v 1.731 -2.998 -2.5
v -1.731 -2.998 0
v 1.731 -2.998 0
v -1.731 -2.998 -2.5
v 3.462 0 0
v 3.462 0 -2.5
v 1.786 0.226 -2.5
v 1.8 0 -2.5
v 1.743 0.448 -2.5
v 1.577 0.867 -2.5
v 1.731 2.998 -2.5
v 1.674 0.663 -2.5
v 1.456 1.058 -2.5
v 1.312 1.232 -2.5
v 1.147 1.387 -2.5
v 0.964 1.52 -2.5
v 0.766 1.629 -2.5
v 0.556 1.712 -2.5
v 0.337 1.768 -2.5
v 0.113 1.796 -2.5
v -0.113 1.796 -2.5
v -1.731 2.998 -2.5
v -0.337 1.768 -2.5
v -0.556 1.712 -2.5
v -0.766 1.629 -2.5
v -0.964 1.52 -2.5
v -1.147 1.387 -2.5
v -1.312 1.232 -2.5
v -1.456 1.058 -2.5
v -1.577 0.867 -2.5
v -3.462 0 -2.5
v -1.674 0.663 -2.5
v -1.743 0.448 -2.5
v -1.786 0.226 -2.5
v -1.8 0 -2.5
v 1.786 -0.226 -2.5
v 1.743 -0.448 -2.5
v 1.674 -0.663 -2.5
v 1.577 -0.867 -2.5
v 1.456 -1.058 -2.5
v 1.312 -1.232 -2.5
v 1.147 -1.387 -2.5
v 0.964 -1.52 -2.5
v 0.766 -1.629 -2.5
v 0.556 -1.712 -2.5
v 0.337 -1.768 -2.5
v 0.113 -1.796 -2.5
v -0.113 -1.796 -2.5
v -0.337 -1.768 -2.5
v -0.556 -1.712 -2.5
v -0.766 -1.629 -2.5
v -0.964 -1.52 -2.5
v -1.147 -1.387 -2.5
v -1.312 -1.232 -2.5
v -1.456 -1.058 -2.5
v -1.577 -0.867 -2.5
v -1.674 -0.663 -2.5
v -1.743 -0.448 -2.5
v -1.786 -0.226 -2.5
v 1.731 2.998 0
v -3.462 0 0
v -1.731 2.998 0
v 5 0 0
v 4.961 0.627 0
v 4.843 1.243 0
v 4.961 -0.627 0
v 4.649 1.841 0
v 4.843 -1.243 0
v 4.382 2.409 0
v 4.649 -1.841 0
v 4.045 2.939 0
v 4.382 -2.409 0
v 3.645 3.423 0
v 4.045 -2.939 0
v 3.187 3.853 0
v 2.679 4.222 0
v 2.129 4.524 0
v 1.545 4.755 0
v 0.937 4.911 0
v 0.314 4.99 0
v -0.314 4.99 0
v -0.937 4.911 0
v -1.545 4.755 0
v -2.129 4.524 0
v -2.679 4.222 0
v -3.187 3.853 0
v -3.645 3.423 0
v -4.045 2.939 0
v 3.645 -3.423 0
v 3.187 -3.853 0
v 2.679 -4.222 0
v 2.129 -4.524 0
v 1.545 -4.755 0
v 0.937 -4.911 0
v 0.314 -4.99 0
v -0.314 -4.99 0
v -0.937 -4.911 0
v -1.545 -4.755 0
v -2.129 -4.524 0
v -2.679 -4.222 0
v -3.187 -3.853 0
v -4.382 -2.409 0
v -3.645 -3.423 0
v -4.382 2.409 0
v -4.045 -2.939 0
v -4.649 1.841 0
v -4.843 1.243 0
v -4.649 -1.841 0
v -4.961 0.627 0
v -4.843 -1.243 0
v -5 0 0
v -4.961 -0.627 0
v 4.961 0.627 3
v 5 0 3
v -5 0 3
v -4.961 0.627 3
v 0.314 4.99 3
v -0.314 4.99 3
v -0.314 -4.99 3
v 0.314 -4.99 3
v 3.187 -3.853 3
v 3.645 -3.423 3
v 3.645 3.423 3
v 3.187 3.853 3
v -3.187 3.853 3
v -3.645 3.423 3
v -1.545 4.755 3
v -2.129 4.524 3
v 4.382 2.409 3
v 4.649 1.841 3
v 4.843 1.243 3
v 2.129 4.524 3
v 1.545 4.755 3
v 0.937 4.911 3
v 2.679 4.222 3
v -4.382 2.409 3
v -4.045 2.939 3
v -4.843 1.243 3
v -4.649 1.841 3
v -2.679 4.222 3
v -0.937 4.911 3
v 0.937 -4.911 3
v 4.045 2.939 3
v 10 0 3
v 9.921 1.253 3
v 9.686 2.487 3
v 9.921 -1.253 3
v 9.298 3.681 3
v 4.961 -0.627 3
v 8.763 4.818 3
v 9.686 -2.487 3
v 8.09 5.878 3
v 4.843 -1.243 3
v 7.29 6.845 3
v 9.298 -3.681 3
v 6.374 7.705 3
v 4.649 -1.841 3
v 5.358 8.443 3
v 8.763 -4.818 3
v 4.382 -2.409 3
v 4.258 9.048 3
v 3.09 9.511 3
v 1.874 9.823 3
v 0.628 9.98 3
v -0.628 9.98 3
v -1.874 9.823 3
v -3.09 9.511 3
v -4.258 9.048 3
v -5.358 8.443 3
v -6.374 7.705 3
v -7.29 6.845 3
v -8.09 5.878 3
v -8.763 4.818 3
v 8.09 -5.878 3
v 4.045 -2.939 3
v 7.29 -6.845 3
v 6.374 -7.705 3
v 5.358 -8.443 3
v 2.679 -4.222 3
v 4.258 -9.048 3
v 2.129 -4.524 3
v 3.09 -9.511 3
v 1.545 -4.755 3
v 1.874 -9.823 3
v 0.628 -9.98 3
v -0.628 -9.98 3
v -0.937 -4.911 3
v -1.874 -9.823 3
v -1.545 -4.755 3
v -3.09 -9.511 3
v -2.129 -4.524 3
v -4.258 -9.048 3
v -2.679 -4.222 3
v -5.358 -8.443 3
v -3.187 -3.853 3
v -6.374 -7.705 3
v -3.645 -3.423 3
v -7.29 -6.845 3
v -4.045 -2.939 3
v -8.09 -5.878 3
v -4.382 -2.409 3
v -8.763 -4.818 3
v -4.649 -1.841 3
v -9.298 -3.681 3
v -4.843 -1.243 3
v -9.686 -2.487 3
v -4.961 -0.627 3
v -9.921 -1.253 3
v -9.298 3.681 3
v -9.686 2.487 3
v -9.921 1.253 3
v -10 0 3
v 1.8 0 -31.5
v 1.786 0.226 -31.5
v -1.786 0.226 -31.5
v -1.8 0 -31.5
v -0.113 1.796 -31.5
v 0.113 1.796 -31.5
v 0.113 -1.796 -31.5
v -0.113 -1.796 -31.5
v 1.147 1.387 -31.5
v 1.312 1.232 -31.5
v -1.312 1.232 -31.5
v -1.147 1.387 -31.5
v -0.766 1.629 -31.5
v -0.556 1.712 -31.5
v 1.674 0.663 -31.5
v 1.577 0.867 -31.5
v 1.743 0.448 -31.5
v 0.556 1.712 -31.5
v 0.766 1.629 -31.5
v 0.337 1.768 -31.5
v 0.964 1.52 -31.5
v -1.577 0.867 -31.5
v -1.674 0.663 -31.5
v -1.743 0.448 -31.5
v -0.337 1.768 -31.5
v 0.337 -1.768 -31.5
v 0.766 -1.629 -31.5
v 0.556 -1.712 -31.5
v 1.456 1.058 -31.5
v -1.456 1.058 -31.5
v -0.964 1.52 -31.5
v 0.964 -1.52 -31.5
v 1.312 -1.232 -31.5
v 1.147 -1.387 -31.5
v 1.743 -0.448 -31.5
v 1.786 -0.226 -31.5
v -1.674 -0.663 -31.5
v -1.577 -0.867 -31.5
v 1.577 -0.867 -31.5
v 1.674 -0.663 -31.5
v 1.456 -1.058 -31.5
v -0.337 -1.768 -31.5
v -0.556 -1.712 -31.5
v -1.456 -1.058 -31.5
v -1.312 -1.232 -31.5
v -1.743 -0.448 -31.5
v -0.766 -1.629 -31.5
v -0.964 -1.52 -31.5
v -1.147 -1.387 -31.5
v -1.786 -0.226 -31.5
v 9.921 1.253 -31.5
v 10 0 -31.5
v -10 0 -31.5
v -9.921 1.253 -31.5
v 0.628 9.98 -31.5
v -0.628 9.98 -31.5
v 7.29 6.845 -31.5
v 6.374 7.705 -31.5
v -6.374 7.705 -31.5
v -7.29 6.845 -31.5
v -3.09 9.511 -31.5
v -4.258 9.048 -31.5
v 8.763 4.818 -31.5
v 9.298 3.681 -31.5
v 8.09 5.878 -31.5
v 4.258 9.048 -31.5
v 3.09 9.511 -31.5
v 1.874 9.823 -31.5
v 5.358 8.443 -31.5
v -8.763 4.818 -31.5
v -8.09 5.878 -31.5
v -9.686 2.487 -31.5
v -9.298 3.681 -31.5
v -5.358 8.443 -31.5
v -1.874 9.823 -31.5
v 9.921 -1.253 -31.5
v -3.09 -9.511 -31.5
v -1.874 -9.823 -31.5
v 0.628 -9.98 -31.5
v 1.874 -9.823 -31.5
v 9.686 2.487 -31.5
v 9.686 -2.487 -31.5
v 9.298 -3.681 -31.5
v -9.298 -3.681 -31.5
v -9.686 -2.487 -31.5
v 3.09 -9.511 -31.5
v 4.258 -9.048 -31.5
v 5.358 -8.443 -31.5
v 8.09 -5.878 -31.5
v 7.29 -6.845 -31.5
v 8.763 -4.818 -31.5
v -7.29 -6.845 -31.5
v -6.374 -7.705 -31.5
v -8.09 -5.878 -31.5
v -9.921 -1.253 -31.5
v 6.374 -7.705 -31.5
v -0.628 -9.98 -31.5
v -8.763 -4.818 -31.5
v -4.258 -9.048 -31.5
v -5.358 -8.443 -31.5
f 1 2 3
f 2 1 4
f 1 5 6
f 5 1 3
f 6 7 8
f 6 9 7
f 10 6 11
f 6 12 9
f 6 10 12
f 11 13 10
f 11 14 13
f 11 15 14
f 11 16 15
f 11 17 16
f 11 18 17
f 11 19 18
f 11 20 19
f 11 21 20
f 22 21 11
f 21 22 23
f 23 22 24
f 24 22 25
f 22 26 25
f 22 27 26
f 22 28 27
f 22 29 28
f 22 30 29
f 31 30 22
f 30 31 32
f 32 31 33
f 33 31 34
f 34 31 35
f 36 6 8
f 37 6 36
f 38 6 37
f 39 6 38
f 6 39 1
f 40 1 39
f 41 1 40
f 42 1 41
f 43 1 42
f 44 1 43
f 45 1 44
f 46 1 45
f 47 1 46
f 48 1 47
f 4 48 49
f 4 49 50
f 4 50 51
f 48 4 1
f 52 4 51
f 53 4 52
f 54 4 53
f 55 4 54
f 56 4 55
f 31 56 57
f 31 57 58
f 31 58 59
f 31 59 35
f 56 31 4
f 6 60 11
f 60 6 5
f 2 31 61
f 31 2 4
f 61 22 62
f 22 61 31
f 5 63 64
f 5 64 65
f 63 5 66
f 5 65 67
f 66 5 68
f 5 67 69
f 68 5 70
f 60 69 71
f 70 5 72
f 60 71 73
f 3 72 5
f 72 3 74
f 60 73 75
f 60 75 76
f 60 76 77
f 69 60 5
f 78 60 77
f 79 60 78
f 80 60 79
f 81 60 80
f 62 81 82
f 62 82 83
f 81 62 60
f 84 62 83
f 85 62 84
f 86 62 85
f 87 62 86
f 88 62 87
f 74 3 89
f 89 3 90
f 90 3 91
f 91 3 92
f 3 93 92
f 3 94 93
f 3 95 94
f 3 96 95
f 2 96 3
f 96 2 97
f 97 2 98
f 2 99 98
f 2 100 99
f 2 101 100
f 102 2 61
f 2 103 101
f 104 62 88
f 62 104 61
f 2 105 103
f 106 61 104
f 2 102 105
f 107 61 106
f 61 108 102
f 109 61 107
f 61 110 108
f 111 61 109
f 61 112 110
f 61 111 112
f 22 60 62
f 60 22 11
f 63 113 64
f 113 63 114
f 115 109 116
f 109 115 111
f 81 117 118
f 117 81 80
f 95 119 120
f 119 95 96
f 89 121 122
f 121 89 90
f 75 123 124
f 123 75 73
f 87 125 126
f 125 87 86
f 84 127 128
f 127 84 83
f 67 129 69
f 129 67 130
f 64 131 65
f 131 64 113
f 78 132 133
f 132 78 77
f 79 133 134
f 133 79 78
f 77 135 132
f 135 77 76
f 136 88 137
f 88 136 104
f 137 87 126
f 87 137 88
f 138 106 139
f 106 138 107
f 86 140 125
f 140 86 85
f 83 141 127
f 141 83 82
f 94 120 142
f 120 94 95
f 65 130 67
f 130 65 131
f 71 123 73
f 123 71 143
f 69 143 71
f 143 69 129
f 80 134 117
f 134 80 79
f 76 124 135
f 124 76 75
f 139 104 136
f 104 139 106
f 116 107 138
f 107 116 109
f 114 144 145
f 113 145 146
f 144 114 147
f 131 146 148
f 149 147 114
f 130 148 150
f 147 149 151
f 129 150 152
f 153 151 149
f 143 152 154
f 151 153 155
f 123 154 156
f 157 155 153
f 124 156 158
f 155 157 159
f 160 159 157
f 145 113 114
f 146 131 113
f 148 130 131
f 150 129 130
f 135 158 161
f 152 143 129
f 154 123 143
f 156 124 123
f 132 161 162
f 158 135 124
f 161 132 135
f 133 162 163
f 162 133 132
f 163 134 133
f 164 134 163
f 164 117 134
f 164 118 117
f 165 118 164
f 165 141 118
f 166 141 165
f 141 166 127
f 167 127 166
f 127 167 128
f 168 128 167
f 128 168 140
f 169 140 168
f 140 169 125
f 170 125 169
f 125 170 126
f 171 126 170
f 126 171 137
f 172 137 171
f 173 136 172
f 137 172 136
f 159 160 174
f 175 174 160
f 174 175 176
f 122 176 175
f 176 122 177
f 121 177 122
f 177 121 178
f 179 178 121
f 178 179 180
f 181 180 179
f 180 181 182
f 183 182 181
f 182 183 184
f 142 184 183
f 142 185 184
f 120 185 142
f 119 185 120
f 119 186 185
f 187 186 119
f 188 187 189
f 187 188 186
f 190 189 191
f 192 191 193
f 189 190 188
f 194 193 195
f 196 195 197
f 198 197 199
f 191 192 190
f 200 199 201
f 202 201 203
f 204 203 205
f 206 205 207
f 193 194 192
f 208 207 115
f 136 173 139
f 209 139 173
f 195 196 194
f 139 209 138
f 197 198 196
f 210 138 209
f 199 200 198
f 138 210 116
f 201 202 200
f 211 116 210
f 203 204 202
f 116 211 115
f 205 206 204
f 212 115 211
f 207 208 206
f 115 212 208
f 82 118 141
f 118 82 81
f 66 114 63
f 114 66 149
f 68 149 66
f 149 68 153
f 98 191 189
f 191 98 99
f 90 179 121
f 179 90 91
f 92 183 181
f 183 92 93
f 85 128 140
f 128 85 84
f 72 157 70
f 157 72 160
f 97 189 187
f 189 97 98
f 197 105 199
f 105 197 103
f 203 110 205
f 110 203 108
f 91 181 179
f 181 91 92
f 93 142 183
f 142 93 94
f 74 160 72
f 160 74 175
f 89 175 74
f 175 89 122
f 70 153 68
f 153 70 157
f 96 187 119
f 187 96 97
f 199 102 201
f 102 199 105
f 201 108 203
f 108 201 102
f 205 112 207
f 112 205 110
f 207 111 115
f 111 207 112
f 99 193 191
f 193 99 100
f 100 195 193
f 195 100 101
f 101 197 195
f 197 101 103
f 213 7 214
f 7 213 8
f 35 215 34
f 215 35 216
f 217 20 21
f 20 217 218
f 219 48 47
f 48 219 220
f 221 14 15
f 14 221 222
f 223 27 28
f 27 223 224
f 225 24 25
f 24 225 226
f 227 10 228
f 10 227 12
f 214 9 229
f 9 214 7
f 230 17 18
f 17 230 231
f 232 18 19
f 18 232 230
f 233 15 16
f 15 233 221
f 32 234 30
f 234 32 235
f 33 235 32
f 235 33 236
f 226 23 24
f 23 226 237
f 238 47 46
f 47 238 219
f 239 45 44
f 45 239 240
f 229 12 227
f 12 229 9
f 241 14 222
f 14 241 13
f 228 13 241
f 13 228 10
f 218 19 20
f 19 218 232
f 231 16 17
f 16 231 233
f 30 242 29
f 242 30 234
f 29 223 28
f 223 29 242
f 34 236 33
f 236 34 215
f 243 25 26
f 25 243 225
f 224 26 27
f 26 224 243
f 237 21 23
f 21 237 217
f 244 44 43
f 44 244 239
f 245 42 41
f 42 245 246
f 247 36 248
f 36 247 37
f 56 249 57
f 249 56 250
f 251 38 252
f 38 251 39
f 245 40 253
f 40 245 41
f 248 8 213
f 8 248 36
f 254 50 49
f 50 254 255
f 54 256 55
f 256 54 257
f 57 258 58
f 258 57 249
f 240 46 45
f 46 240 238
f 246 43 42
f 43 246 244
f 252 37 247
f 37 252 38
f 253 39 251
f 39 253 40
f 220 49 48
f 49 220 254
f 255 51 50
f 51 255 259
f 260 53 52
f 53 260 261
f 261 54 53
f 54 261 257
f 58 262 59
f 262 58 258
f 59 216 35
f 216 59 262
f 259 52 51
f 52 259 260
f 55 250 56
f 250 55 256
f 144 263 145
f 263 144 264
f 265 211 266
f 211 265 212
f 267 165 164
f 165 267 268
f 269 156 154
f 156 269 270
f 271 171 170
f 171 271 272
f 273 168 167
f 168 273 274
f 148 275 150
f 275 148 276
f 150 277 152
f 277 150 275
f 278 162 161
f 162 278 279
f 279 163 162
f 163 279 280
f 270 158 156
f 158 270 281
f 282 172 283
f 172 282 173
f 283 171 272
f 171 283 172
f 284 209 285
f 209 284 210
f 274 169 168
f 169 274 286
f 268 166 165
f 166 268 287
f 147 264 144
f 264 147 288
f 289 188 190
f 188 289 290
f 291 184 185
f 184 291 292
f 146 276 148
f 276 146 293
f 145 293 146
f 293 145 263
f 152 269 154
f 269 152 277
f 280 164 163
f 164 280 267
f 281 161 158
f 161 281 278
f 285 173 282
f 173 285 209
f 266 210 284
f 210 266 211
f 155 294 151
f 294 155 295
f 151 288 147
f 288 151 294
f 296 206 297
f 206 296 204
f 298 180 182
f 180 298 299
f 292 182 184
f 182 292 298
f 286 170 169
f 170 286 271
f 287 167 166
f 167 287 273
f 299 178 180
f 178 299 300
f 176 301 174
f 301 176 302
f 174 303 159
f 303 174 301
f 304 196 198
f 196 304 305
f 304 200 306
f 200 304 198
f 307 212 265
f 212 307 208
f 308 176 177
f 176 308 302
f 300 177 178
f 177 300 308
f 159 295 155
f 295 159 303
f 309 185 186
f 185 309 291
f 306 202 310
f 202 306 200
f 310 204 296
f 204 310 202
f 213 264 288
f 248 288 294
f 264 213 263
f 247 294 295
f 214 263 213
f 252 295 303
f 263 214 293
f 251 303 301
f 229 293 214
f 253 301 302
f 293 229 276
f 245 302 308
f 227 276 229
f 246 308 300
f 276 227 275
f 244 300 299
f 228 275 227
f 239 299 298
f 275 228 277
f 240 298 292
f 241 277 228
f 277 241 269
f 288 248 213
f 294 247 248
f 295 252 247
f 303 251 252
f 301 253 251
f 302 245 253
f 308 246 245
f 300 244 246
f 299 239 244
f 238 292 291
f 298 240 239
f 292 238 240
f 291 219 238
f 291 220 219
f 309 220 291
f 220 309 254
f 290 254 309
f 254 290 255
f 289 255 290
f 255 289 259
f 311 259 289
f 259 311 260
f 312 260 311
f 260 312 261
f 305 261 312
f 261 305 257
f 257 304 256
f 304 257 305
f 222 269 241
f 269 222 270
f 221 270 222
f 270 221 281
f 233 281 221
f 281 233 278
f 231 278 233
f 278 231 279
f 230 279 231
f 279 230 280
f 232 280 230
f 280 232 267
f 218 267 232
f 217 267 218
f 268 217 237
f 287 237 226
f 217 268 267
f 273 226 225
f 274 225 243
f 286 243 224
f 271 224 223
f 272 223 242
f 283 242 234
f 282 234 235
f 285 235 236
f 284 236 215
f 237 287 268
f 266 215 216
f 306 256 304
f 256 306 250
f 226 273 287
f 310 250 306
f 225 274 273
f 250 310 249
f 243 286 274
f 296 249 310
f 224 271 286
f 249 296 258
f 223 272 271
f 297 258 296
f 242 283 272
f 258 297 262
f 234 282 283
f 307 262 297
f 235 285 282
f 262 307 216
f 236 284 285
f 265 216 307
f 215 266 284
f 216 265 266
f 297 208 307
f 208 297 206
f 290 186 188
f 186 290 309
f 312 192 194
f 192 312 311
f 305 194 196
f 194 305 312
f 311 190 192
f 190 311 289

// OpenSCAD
$fn = 50;


difference() {
	union() {
		translate(v = [0, 0, -31.5000000000]) {
			cylinder(h = 34.5000000000, r = 10.0000000000);
		}
	}
	union() {
		translate(v = [0, 0, 0]) {
			rotate(a = [0, 0, 0]) {
				difference() {
					union() {
						translate(v = [0, 0, -2.5000000000]) {
							linear_extrude(height = 2.5000000000) {
								polygon(points = [[3.4620000000, 0.0000000000], [1.7310000000, 2.9981799479], [-1.7310000000, 2.9981799479], [-3.4620000000, 0.0000000000], [-1.7310000000, -2.9981799479], [1.7310000000, -2.9981799479]]);
							}
						}
					}
					union();
				}
			}
		}
		#cylinder(h = 3, r = 5.0000000000);
		#translate(v = [0, 0, -100.0000000000]) {
			cylinder(h = 200, r = 1.8000000000);
		}
	}
}
